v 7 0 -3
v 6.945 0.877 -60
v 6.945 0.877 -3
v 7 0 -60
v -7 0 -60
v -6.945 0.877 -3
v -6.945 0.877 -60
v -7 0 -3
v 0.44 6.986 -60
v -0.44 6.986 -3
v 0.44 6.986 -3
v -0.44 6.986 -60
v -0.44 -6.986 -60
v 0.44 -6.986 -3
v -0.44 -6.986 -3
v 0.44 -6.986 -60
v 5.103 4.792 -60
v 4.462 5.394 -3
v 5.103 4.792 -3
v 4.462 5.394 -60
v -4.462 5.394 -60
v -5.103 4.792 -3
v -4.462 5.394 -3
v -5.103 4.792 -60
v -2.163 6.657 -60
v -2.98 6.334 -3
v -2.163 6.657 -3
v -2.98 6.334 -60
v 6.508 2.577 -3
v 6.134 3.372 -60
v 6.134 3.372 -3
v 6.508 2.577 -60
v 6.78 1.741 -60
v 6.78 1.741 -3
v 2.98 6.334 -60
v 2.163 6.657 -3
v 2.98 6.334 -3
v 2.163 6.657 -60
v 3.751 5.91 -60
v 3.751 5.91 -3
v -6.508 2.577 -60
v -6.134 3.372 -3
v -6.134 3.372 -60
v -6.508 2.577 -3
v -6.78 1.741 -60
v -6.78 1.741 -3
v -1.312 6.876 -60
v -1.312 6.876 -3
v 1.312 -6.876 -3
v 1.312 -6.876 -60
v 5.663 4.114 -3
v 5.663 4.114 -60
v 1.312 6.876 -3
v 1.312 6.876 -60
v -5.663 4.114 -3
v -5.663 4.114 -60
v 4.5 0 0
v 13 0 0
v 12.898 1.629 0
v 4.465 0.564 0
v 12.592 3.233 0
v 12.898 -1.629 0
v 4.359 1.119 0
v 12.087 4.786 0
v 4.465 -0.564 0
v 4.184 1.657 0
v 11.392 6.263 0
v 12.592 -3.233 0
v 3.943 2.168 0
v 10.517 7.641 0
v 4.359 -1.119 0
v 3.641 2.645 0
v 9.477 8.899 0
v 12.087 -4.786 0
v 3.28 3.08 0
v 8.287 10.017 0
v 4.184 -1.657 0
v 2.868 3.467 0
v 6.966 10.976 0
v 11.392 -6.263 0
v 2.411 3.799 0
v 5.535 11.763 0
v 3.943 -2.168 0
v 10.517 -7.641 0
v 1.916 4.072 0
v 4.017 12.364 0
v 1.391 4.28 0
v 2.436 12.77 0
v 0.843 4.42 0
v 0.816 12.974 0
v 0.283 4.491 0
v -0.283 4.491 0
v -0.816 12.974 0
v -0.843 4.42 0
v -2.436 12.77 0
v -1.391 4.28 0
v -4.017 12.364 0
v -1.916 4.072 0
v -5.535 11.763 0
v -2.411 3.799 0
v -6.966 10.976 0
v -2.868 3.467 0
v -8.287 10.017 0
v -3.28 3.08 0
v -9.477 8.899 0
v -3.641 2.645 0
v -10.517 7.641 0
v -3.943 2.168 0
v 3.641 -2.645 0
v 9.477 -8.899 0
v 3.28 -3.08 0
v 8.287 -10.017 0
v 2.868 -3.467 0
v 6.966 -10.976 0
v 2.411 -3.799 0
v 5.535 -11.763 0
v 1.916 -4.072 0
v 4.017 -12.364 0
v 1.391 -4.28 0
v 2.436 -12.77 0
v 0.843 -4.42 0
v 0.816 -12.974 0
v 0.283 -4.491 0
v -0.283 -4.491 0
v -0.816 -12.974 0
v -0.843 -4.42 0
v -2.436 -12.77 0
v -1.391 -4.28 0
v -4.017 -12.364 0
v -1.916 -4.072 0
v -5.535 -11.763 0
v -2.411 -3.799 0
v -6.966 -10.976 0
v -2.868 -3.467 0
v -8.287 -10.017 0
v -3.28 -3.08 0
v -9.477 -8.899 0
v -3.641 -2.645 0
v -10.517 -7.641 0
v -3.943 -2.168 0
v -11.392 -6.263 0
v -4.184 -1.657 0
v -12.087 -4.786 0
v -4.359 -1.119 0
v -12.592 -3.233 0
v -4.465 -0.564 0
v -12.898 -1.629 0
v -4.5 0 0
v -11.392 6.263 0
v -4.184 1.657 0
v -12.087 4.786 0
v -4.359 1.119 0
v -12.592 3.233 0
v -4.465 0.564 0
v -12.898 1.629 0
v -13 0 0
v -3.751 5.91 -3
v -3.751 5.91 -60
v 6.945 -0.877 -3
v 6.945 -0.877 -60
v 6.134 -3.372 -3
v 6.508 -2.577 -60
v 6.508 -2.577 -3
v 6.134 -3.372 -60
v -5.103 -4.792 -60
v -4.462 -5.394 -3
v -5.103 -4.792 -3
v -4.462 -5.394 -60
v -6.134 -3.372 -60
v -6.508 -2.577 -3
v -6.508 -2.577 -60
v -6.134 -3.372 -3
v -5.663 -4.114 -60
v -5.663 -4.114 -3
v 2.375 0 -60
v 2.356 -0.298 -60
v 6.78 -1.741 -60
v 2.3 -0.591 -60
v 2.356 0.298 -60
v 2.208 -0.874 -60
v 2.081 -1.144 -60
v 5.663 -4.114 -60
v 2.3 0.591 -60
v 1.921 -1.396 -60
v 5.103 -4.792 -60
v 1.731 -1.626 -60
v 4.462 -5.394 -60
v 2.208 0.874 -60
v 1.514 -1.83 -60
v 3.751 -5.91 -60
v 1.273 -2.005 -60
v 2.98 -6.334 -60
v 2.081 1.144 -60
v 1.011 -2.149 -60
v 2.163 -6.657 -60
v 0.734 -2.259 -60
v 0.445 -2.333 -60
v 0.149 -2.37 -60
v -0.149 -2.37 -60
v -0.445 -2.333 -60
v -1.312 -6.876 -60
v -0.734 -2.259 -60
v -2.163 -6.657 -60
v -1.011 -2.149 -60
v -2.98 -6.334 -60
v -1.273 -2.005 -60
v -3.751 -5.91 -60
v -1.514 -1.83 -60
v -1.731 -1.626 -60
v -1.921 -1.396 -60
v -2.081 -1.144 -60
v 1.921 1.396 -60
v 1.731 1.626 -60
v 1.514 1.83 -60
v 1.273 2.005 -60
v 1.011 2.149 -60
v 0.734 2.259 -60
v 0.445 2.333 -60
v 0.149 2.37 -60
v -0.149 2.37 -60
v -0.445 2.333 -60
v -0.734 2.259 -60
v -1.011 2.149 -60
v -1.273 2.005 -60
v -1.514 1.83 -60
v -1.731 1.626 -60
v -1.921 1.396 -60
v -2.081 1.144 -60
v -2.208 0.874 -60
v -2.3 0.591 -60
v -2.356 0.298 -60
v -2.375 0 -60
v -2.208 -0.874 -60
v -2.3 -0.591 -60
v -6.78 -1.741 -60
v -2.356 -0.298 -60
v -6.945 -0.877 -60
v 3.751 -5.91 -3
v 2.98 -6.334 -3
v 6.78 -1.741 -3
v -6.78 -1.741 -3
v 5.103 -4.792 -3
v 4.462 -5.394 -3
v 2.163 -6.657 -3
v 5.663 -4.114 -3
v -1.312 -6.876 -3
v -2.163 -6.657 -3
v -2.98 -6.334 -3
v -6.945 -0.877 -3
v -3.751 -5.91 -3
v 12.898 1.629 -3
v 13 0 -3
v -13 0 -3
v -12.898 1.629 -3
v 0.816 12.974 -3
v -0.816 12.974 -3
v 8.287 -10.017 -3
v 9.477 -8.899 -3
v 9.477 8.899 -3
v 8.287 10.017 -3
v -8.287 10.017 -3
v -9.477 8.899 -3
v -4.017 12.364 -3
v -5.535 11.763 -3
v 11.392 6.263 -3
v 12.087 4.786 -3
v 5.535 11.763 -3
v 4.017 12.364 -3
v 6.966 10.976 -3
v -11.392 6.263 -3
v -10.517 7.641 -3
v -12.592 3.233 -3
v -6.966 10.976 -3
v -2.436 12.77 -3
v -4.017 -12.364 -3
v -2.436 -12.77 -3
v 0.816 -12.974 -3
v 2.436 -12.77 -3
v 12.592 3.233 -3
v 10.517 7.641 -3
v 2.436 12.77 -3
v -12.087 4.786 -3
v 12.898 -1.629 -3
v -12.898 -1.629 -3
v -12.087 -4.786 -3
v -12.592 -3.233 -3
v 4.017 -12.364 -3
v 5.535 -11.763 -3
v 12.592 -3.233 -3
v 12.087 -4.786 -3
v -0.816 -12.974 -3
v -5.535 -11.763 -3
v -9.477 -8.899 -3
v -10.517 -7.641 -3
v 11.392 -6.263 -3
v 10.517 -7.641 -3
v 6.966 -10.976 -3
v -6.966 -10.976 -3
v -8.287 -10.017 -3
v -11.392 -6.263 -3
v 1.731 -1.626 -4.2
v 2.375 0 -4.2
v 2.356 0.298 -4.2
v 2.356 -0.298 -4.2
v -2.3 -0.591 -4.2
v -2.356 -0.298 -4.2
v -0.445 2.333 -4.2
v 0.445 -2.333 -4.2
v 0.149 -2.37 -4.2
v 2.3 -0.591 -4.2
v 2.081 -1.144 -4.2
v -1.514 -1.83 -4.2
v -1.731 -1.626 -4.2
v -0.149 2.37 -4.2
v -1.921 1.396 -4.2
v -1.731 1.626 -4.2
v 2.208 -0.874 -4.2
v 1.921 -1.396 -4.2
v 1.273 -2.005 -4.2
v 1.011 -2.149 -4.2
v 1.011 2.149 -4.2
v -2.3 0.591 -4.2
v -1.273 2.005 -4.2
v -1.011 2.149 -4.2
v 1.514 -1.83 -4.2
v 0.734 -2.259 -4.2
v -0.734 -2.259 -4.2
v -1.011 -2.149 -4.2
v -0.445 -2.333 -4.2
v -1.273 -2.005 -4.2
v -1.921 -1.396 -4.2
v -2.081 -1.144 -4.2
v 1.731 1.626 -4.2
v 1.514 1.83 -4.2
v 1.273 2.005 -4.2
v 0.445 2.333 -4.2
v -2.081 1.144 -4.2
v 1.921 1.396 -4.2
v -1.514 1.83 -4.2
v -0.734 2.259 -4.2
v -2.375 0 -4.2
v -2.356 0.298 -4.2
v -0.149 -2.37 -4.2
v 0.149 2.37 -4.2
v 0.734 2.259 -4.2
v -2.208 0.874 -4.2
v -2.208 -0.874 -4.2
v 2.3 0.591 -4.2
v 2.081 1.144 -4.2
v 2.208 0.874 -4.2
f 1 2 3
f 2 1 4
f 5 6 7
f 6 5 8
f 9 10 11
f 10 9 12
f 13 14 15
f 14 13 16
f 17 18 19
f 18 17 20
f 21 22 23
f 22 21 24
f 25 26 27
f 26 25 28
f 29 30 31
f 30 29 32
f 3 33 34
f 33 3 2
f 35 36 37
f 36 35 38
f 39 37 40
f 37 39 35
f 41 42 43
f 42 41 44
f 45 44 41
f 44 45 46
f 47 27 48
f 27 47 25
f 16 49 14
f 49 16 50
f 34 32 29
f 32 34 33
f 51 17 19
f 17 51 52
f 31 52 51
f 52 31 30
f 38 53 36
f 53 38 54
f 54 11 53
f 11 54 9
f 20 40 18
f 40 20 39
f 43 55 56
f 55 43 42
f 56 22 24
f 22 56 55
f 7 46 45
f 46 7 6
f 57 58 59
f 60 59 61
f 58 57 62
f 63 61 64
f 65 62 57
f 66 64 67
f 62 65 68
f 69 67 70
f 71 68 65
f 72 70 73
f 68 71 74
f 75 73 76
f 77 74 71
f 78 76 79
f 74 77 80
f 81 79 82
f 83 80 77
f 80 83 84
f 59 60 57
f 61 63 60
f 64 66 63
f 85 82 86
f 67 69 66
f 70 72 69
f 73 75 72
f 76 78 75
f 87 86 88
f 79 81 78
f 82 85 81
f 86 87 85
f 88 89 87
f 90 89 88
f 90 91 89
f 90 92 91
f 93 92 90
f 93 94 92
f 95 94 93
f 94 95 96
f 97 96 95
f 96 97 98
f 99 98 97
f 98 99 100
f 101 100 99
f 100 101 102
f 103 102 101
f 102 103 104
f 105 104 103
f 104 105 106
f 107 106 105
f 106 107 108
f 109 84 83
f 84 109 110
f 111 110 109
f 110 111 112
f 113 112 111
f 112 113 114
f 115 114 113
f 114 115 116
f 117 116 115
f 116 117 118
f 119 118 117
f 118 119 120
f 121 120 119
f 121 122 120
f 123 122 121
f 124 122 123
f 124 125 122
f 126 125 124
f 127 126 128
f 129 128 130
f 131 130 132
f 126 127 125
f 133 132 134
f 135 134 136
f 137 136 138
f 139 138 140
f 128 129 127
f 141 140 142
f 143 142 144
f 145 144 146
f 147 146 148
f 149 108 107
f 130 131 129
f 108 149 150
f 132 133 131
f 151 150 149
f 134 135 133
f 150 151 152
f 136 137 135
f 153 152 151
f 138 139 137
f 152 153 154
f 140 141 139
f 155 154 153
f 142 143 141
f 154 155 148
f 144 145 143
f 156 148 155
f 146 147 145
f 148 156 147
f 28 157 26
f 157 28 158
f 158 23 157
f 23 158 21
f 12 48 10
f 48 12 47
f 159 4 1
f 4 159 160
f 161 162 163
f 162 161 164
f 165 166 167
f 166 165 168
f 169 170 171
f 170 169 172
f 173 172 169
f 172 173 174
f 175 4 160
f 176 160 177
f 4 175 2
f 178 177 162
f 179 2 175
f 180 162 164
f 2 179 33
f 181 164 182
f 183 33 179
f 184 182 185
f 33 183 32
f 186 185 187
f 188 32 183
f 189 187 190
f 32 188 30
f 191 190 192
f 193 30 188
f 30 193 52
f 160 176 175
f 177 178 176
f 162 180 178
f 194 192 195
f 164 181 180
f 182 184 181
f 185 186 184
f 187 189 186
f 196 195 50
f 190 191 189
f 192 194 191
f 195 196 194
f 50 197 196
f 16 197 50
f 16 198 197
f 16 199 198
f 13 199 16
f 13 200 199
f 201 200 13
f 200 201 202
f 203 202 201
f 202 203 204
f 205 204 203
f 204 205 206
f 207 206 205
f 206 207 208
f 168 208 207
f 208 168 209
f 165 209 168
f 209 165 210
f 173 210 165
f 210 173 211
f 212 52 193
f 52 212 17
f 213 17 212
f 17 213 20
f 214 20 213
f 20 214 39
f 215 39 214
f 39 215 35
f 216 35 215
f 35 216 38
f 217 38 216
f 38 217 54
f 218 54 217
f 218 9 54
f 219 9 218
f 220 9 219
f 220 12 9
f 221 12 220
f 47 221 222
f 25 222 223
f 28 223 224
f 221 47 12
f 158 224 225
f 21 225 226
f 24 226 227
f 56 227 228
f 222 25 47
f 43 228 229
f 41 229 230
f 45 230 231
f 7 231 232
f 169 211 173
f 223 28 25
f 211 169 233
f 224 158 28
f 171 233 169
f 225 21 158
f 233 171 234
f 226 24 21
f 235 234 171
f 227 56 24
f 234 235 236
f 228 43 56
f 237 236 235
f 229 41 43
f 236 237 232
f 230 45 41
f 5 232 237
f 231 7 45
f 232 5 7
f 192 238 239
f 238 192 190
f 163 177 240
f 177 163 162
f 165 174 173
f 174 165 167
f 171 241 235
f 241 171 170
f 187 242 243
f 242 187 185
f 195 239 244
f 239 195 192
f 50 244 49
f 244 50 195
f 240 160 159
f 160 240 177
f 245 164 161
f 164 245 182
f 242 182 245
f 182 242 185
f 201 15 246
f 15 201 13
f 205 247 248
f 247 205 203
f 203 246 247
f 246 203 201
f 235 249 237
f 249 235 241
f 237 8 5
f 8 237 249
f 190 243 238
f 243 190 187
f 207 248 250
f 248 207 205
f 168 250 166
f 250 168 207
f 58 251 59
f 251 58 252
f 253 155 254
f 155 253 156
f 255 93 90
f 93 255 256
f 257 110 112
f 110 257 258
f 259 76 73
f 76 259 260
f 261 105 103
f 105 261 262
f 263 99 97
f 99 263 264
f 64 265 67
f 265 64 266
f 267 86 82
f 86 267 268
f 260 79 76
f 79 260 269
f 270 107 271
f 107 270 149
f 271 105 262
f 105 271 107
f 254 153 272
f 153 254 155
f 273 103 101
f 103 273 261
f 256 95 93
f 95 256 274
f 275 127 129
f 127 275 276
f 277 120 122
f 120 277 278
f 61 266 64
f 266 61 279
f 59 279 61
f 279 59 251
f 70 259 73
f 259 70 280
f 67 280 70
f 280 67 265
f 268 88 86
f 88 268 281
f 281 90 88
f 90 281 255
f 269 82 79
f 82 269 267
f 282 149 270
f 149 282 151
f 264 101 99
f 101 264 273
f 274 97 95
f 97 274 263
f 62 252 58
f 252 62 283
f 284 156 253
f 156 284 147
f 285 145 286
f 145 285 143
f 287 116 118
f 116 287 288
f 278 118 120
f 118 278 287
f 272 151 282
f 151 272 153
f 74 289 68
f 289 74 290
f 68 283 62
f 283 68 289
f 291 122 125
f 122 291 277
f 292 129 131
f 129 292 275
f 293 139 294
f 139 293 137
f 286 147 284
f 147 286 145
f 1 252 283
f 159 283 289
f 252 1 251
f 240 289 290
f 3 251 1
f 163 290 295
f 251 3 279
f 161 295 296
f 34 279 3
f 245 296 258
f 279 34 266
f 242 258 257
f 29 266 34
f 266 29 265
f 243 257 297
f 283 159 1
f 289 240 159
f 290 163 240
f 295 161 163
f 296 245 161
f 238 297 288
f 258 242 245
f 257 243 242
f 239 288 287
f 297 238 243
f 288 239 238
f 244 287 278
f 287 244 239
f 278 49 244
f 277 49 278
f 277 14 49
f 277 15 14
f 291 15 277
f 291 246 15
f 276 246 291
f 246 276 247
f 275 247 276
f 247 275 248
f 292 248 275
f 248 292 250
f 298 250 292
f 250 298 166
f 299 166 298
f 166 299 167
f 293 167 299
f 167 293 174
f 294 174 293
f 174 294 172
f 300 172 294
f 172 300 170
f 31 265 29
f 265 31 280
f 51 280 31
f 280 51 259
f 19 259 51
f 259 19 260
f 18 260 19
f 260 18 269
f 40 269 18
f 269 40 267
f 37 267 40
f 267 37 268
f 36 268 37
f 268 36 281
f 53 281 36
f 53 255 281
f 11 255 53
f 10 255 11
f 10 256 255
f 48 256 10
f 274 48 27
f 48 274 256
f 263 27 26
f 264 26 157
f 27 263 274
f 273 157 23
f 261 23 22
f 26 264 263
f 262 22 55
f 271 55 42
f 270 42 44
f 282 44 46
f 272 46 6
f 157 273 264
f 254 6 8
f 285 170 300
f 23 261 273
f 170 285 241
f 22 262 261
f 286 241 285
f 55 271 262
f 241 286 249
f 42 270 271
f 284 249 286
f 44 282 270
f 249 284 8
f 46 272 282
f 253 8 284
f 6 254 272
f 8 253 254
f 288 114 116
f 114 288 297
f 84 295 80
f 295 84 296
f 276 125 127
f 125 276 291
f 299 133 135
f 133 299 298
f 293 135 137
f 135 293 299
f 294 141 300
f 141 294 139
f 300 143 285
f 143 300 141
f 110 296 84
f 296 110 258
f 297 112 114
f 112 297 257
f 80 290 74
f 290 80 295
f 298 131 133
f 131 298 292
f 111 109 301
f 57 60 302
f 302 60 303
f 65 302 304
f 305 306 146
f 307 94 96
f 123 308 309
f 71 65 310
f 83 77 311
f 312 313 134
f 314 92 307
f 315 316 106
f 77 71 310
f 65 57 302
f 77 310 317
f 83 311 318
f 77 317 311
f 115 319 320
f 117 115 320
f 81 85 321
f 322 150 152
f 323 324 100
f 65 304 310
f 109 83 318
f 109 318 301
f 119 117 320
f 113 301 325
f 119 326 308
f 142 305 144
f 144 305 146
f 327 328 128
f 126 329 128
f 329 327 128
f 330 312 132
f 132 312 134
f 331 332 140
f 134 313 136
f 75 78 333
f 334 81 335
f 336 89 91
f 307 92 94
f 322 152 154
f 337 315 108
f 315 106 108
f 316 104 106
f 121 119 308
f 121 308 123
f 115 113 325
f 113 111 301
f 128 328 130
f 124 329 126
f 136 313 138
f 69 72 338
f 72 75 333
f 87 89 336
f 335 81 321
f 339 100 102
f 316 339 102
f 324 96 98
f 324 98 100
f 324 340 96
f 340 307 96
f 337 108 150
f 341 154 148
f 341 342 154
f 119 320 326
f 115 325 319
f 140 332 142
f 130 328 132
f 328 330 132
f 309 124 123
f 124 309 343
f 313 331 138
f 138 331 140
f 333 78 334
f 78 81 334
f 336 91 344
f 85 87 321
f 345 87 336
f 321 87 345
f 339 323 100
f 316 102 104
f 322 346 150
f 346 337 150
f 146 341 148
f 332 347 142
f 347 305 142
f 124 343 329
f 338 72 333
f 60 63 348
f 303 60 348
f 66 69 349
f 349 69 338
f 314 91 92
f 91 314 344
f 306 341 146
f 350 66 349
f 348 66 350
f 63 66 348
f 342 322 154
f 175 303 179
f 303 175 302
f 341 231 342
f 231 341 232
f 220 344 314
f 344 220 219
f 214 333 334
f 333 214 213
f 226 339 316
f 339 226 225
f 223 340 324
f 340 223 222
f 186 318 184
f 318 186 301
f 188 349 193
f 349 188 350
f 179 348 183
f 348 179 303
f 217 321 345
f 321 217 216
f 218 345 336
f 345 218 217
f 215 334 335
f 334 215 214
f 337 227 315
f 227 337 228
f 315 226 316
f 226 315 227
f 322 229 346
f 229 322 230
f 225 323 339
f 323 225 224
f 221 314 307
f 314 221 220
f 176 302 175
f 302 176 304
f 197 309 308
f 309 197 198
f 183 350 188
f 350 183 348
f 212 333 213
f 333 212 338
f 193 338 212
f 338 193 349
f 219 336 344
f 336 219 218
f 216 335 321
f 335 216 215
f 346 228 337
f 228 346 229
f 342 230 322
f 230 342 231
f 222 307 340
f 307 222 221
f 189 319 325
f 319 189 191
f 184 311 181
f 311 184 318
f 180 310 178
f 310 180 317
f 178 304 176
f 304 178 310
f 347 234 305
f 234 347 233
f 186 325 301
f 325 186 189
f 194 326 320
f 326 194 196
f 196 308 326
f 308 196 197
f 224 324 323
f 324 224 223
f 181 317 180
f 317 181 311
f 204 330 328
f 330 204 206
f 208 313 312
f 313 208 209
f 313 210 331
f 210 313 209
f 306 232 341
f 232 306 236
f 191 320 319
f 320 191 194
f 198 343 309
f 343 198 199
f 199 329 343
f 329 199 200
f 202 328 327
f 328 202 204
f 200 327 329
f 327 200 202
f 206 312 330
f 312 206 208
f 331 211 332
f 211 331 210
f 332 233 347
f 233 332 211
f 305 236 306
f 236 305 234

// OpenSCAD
$fn = 50;


difference() {
	union() {
		translate(v = [0, 0, -60.0000000000]) {
			cylinder(h = 60, r = 7.0000000000);
		}
		translate(v = [0, 0, -3.0000000000]) {
			cylinder(h = 3, r = 13.0000000000);
		}
	}
	union() {
		translate(v = [0, 0, 0]) {
			rotate(a = [0, 0, 0]) {
				difference() {
					union() {
						#translate(v = [0, 0, -60.0000000000]) {
							cylinder(h = 60, r = 2.2500000000);
						}
						#translate(v = [0, 0, -4.2000000000]) {
							cylinder(h = 4.2000000000, r1 = 2.3750000000, r2 = 4.5000000000);
						}
						#translate(v = [0, 0, -60.0000000000]) {
							cylinder(h = 60, r = 2.3750000000);
						}
						#translate(v = [0, 0, -60.0000000000]) {
							cylinder(h = 60, r = 2.2500000000);
						}
					}
					union();
				}
			}
		}
	}
}
